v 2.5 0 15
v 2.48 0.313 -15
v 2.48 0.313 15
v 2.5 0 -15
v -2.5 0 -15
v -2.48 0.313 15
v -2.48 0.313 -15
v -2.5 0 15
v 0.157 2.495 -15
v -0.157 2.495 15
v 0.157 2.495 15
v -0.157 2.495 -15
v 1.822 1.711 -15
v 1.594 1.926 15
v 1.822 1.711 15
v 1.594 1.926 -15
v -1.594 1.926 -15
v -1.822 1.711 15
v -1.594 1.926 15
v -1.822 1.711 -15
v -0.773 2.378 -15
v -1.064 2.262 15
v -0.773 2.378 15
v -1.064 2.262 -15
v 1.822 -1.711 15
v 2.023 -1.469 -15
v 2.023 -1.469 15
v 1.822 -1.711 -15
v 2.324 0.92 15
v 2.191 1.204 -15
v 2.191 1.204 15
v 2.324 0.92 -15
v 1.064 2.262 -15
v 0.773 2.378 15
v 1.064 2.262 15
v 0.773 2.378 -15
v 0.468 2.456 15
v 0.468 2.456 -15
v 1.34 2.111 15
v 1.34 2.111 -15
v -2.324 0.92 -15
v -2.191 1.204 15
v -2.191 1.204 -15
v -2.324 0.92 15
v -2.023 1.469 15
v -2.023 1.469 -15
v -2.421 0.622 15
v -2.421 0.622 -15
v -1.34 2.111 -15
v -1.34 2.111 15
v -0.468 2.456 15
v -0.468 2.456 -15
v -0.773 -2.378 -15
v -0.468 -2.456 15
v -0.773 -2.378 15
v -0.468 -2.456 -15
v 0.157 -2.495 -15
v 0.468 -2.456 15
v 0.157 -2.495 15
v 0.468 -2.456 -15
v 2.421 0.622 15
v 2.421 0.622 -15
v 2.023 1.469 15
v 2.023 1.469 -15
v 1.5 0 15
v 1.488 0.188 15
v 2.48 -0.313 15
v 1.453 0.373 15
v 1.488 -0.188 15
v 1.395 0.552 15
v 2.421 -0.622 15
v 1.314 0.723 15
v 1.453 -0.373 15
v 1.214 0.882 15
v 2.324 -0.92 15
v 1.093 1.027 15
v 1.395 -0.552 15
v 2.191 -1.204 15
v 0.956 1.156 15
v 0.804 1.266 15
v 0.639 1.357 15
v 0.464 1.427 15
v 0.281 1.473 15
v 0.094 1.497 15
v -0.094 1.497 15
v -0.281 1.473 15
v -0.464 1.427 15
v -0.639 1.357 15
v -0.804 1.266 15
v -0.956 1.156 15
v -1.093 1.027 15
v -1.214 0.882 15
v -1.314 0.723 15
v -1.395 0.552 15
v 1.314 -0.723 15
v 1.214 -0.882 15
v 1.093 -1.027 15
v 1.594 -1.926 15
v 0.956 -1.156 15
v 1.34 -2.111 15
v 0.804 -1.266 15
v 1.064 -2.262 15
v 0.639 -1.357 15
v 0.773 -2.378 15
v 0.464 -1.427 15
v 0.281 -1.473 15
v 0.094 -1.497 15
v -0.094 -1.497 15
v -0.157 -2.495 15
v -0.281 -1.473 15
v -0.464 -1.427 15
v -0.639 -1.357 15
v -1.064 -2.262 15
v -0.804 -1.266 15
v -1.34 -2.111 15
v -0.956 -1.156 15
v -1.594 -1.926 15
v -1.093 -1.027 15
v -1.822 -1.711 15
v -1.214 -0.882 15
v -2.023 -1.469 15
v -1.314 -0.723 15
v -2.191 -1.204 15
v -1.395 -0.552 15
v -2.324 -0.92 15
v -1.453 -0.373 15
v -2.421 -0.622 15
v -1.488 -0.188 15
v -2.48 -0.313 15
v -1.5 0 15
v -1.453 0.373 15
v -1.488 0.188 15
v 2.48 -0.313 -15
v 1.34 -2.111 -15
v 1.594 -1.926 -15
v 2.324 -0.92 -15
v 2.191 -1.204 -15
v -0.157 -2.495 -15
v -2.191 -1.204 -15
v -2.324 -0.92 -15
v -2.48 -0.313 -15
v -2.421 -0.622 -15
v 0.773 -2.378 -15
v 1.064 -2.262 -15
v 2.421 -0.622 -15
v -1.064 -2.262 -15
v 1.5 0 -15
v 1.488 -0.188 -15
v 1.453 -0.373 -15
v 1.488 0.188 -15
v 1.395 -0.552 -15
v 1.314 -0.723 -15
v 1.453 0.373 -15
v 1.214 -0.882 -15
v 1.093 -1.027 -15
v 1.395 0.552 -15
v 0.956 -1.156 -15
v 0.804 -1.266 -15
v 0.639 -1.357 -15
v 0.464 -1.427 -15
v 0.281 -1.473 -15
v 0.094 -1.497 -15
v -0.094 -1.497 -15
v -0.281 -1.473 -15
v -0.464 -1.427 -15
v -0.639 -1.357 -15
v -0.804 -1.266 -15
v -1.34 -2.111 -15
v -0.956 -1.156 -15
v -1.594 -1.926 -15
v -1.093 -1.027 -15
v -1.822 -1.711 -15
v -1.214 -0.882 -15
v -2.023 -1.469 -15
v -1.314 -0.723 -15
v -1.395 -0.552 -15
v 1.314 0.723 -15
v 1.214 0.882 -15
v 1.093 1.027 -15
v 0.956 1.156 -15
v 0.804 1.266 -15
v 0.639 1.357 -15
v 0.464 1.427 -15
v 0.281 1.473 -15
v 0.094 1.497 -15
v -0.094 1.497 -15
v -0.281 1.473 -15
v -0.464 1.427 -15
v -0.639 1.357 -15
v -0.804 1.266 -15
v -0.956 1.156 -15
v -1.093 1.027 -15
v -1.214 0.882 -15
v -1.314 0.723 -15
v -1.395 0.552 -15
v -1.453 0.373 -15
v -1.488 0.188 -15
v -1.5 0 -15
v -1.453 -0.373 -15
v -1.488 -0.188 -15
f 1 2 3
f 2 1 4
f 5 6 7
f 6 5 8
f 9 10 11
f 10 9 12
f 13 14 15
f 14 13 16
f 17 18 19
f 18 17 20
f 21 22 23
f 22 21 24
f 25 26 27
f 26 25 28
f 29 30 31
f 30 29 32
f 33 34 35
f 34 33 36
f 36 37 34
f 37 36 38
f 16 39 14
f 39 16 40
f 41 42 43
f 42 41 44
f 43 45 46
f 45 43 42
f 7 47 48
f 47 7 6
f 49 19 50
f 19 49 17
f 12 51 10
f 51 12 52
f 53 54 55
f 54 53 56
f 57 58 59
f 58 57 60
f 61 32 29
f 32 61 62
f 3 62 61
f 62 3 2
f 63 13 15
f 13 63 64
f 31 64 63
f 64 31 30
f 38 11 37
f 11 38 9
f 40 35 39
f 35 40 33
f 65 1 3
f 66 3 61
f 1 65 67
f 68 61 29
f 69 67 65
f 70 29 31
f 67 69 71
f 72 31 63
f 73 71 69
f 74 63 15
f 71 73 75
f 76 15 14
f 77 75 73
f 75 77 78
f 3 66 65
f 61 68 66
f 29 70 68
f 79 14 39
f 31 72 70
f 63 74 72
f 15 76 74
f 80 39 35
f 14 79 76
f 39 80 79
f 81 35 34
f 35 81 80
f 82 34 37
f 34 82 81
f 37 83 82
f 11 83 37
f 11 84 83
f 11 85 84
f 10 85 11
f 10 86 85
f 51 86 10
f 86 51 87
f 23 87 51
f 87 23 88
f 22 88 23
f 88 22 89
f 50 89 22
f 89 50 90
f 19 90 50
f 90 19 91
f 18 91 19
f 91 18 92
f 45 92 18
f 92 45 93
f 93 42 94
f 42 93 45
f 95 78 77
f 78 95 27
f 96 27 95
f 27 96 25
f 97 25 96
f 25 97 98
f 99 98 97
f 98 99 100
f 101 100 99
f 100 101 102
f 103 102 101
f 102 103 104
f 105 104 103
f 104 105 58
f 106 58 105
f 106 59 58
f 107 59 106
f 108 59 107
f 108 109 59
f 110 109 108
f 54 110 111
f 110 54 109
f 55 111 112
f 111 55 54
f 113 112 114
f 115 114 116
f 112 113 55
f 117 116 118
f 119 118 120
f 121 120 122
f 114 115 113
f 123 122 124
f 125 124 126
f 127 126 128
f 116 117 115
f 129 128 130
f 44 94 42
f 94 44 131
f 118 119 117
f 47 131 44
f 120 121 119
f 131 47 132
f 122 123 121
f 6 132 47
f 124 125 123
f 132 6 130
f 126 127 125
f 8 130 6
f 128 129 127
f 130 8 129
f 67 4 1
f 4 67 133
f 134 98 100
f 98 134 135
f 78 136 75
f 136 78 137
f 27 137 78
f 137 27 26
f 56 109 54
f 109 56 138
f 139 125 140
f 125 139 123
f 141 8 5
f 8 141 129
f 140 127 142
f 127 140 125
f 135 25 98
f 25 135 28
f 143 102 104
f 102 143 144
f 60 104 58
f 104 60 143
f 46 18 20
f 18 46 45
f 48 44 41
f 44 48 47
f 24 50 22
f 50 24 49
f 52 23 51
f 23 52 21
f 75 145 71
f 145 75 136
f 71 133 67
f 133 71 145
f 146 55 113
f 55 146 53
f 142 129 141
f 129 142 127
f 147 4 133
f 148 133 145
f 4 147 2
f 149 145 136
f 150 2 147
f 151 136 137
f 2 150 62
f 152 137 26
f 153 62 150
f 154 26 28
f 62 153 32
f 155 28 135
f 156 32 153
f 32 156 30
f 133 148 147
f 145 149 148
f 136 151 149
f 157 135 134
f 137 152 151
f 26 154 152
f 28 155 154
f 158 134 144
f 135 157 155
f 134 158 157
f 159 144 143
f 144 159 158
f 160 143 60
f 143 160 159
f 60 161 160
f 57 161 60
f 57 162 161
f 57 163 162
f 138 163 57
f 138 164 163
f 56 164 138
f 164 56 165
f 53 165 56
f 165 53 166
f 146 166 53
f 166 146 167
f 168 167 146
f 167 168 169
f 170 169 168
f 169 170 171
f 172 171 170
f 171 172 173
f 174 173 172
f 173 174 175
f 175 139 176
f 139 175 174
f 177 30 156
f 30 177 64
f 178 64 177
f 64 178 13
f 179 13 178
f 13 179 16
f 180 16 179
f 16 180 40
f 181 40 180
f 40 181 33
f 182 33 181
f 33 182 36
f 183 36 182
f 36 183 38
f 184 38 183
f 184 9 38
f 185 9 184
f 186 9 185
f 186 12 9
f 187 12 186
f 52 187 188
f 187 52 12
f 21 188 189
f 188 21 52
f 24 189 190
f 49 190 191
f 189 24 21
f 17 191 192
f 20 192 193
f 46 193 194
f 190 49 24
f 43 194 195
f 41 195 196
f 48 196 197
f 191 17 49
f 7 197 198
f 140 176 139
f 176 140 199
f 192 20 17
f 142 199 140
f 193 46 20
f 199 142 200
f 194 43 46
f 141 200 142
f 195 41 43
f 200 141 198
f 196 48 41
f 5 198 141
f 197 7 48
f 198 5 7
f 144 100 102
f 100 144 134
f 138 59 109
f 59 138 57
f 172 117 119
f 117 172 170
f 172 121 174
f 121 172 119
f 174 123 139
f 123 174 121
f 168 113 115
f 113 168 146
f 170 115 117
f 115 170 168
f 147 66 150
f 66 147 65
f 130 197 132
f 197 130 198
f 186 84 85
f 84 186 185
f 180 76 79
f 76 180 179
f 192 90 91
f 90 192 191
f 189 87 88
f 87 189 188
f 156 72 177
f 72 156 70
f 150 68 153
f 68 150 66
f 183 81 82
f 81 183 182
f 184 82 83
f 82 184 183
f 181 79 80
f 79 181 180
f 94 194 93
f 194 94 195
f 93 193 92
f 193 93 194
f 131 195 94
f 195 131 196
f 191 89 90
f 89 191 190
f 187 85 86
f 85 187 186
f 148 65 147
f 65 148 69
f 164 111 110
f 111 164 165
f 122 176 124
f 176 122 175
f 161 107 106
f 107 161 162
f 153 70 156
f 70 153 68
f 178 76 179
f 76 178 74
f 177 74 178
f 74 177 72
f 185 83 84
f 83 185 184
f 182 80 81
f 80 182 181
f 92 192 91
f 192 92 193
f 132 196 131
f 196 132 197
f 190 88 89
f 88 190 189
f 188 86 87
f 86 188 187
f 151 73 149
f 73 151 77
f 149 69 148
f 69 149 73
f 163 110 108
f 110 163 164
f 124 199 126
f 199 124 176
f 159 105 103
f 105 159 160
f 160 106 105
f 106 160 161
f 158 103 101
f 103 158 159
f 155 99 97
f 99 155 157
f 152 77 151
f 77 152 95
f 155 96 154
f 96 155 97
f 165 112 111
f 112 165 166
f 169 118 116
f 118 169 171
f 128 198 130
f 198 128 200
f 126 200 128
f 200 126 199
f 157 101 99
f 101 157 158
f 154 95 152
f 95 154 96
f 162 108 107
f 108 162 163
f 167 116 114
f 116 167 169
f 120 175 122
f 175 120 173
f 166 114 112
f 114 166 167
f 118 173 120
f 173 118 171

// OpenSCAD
$fn = 50;


difference() {
	union() {
		translate(v = [0, 0, -15.0000000000]) {
			cylinder(h = 30, r = 2.5000000000);
		}
	}
	union() {
		translate(v = [0, 0, -100.0000000000]) {
			cylinder(h = 200, r = 1.5000000000);
		}
	}
}
